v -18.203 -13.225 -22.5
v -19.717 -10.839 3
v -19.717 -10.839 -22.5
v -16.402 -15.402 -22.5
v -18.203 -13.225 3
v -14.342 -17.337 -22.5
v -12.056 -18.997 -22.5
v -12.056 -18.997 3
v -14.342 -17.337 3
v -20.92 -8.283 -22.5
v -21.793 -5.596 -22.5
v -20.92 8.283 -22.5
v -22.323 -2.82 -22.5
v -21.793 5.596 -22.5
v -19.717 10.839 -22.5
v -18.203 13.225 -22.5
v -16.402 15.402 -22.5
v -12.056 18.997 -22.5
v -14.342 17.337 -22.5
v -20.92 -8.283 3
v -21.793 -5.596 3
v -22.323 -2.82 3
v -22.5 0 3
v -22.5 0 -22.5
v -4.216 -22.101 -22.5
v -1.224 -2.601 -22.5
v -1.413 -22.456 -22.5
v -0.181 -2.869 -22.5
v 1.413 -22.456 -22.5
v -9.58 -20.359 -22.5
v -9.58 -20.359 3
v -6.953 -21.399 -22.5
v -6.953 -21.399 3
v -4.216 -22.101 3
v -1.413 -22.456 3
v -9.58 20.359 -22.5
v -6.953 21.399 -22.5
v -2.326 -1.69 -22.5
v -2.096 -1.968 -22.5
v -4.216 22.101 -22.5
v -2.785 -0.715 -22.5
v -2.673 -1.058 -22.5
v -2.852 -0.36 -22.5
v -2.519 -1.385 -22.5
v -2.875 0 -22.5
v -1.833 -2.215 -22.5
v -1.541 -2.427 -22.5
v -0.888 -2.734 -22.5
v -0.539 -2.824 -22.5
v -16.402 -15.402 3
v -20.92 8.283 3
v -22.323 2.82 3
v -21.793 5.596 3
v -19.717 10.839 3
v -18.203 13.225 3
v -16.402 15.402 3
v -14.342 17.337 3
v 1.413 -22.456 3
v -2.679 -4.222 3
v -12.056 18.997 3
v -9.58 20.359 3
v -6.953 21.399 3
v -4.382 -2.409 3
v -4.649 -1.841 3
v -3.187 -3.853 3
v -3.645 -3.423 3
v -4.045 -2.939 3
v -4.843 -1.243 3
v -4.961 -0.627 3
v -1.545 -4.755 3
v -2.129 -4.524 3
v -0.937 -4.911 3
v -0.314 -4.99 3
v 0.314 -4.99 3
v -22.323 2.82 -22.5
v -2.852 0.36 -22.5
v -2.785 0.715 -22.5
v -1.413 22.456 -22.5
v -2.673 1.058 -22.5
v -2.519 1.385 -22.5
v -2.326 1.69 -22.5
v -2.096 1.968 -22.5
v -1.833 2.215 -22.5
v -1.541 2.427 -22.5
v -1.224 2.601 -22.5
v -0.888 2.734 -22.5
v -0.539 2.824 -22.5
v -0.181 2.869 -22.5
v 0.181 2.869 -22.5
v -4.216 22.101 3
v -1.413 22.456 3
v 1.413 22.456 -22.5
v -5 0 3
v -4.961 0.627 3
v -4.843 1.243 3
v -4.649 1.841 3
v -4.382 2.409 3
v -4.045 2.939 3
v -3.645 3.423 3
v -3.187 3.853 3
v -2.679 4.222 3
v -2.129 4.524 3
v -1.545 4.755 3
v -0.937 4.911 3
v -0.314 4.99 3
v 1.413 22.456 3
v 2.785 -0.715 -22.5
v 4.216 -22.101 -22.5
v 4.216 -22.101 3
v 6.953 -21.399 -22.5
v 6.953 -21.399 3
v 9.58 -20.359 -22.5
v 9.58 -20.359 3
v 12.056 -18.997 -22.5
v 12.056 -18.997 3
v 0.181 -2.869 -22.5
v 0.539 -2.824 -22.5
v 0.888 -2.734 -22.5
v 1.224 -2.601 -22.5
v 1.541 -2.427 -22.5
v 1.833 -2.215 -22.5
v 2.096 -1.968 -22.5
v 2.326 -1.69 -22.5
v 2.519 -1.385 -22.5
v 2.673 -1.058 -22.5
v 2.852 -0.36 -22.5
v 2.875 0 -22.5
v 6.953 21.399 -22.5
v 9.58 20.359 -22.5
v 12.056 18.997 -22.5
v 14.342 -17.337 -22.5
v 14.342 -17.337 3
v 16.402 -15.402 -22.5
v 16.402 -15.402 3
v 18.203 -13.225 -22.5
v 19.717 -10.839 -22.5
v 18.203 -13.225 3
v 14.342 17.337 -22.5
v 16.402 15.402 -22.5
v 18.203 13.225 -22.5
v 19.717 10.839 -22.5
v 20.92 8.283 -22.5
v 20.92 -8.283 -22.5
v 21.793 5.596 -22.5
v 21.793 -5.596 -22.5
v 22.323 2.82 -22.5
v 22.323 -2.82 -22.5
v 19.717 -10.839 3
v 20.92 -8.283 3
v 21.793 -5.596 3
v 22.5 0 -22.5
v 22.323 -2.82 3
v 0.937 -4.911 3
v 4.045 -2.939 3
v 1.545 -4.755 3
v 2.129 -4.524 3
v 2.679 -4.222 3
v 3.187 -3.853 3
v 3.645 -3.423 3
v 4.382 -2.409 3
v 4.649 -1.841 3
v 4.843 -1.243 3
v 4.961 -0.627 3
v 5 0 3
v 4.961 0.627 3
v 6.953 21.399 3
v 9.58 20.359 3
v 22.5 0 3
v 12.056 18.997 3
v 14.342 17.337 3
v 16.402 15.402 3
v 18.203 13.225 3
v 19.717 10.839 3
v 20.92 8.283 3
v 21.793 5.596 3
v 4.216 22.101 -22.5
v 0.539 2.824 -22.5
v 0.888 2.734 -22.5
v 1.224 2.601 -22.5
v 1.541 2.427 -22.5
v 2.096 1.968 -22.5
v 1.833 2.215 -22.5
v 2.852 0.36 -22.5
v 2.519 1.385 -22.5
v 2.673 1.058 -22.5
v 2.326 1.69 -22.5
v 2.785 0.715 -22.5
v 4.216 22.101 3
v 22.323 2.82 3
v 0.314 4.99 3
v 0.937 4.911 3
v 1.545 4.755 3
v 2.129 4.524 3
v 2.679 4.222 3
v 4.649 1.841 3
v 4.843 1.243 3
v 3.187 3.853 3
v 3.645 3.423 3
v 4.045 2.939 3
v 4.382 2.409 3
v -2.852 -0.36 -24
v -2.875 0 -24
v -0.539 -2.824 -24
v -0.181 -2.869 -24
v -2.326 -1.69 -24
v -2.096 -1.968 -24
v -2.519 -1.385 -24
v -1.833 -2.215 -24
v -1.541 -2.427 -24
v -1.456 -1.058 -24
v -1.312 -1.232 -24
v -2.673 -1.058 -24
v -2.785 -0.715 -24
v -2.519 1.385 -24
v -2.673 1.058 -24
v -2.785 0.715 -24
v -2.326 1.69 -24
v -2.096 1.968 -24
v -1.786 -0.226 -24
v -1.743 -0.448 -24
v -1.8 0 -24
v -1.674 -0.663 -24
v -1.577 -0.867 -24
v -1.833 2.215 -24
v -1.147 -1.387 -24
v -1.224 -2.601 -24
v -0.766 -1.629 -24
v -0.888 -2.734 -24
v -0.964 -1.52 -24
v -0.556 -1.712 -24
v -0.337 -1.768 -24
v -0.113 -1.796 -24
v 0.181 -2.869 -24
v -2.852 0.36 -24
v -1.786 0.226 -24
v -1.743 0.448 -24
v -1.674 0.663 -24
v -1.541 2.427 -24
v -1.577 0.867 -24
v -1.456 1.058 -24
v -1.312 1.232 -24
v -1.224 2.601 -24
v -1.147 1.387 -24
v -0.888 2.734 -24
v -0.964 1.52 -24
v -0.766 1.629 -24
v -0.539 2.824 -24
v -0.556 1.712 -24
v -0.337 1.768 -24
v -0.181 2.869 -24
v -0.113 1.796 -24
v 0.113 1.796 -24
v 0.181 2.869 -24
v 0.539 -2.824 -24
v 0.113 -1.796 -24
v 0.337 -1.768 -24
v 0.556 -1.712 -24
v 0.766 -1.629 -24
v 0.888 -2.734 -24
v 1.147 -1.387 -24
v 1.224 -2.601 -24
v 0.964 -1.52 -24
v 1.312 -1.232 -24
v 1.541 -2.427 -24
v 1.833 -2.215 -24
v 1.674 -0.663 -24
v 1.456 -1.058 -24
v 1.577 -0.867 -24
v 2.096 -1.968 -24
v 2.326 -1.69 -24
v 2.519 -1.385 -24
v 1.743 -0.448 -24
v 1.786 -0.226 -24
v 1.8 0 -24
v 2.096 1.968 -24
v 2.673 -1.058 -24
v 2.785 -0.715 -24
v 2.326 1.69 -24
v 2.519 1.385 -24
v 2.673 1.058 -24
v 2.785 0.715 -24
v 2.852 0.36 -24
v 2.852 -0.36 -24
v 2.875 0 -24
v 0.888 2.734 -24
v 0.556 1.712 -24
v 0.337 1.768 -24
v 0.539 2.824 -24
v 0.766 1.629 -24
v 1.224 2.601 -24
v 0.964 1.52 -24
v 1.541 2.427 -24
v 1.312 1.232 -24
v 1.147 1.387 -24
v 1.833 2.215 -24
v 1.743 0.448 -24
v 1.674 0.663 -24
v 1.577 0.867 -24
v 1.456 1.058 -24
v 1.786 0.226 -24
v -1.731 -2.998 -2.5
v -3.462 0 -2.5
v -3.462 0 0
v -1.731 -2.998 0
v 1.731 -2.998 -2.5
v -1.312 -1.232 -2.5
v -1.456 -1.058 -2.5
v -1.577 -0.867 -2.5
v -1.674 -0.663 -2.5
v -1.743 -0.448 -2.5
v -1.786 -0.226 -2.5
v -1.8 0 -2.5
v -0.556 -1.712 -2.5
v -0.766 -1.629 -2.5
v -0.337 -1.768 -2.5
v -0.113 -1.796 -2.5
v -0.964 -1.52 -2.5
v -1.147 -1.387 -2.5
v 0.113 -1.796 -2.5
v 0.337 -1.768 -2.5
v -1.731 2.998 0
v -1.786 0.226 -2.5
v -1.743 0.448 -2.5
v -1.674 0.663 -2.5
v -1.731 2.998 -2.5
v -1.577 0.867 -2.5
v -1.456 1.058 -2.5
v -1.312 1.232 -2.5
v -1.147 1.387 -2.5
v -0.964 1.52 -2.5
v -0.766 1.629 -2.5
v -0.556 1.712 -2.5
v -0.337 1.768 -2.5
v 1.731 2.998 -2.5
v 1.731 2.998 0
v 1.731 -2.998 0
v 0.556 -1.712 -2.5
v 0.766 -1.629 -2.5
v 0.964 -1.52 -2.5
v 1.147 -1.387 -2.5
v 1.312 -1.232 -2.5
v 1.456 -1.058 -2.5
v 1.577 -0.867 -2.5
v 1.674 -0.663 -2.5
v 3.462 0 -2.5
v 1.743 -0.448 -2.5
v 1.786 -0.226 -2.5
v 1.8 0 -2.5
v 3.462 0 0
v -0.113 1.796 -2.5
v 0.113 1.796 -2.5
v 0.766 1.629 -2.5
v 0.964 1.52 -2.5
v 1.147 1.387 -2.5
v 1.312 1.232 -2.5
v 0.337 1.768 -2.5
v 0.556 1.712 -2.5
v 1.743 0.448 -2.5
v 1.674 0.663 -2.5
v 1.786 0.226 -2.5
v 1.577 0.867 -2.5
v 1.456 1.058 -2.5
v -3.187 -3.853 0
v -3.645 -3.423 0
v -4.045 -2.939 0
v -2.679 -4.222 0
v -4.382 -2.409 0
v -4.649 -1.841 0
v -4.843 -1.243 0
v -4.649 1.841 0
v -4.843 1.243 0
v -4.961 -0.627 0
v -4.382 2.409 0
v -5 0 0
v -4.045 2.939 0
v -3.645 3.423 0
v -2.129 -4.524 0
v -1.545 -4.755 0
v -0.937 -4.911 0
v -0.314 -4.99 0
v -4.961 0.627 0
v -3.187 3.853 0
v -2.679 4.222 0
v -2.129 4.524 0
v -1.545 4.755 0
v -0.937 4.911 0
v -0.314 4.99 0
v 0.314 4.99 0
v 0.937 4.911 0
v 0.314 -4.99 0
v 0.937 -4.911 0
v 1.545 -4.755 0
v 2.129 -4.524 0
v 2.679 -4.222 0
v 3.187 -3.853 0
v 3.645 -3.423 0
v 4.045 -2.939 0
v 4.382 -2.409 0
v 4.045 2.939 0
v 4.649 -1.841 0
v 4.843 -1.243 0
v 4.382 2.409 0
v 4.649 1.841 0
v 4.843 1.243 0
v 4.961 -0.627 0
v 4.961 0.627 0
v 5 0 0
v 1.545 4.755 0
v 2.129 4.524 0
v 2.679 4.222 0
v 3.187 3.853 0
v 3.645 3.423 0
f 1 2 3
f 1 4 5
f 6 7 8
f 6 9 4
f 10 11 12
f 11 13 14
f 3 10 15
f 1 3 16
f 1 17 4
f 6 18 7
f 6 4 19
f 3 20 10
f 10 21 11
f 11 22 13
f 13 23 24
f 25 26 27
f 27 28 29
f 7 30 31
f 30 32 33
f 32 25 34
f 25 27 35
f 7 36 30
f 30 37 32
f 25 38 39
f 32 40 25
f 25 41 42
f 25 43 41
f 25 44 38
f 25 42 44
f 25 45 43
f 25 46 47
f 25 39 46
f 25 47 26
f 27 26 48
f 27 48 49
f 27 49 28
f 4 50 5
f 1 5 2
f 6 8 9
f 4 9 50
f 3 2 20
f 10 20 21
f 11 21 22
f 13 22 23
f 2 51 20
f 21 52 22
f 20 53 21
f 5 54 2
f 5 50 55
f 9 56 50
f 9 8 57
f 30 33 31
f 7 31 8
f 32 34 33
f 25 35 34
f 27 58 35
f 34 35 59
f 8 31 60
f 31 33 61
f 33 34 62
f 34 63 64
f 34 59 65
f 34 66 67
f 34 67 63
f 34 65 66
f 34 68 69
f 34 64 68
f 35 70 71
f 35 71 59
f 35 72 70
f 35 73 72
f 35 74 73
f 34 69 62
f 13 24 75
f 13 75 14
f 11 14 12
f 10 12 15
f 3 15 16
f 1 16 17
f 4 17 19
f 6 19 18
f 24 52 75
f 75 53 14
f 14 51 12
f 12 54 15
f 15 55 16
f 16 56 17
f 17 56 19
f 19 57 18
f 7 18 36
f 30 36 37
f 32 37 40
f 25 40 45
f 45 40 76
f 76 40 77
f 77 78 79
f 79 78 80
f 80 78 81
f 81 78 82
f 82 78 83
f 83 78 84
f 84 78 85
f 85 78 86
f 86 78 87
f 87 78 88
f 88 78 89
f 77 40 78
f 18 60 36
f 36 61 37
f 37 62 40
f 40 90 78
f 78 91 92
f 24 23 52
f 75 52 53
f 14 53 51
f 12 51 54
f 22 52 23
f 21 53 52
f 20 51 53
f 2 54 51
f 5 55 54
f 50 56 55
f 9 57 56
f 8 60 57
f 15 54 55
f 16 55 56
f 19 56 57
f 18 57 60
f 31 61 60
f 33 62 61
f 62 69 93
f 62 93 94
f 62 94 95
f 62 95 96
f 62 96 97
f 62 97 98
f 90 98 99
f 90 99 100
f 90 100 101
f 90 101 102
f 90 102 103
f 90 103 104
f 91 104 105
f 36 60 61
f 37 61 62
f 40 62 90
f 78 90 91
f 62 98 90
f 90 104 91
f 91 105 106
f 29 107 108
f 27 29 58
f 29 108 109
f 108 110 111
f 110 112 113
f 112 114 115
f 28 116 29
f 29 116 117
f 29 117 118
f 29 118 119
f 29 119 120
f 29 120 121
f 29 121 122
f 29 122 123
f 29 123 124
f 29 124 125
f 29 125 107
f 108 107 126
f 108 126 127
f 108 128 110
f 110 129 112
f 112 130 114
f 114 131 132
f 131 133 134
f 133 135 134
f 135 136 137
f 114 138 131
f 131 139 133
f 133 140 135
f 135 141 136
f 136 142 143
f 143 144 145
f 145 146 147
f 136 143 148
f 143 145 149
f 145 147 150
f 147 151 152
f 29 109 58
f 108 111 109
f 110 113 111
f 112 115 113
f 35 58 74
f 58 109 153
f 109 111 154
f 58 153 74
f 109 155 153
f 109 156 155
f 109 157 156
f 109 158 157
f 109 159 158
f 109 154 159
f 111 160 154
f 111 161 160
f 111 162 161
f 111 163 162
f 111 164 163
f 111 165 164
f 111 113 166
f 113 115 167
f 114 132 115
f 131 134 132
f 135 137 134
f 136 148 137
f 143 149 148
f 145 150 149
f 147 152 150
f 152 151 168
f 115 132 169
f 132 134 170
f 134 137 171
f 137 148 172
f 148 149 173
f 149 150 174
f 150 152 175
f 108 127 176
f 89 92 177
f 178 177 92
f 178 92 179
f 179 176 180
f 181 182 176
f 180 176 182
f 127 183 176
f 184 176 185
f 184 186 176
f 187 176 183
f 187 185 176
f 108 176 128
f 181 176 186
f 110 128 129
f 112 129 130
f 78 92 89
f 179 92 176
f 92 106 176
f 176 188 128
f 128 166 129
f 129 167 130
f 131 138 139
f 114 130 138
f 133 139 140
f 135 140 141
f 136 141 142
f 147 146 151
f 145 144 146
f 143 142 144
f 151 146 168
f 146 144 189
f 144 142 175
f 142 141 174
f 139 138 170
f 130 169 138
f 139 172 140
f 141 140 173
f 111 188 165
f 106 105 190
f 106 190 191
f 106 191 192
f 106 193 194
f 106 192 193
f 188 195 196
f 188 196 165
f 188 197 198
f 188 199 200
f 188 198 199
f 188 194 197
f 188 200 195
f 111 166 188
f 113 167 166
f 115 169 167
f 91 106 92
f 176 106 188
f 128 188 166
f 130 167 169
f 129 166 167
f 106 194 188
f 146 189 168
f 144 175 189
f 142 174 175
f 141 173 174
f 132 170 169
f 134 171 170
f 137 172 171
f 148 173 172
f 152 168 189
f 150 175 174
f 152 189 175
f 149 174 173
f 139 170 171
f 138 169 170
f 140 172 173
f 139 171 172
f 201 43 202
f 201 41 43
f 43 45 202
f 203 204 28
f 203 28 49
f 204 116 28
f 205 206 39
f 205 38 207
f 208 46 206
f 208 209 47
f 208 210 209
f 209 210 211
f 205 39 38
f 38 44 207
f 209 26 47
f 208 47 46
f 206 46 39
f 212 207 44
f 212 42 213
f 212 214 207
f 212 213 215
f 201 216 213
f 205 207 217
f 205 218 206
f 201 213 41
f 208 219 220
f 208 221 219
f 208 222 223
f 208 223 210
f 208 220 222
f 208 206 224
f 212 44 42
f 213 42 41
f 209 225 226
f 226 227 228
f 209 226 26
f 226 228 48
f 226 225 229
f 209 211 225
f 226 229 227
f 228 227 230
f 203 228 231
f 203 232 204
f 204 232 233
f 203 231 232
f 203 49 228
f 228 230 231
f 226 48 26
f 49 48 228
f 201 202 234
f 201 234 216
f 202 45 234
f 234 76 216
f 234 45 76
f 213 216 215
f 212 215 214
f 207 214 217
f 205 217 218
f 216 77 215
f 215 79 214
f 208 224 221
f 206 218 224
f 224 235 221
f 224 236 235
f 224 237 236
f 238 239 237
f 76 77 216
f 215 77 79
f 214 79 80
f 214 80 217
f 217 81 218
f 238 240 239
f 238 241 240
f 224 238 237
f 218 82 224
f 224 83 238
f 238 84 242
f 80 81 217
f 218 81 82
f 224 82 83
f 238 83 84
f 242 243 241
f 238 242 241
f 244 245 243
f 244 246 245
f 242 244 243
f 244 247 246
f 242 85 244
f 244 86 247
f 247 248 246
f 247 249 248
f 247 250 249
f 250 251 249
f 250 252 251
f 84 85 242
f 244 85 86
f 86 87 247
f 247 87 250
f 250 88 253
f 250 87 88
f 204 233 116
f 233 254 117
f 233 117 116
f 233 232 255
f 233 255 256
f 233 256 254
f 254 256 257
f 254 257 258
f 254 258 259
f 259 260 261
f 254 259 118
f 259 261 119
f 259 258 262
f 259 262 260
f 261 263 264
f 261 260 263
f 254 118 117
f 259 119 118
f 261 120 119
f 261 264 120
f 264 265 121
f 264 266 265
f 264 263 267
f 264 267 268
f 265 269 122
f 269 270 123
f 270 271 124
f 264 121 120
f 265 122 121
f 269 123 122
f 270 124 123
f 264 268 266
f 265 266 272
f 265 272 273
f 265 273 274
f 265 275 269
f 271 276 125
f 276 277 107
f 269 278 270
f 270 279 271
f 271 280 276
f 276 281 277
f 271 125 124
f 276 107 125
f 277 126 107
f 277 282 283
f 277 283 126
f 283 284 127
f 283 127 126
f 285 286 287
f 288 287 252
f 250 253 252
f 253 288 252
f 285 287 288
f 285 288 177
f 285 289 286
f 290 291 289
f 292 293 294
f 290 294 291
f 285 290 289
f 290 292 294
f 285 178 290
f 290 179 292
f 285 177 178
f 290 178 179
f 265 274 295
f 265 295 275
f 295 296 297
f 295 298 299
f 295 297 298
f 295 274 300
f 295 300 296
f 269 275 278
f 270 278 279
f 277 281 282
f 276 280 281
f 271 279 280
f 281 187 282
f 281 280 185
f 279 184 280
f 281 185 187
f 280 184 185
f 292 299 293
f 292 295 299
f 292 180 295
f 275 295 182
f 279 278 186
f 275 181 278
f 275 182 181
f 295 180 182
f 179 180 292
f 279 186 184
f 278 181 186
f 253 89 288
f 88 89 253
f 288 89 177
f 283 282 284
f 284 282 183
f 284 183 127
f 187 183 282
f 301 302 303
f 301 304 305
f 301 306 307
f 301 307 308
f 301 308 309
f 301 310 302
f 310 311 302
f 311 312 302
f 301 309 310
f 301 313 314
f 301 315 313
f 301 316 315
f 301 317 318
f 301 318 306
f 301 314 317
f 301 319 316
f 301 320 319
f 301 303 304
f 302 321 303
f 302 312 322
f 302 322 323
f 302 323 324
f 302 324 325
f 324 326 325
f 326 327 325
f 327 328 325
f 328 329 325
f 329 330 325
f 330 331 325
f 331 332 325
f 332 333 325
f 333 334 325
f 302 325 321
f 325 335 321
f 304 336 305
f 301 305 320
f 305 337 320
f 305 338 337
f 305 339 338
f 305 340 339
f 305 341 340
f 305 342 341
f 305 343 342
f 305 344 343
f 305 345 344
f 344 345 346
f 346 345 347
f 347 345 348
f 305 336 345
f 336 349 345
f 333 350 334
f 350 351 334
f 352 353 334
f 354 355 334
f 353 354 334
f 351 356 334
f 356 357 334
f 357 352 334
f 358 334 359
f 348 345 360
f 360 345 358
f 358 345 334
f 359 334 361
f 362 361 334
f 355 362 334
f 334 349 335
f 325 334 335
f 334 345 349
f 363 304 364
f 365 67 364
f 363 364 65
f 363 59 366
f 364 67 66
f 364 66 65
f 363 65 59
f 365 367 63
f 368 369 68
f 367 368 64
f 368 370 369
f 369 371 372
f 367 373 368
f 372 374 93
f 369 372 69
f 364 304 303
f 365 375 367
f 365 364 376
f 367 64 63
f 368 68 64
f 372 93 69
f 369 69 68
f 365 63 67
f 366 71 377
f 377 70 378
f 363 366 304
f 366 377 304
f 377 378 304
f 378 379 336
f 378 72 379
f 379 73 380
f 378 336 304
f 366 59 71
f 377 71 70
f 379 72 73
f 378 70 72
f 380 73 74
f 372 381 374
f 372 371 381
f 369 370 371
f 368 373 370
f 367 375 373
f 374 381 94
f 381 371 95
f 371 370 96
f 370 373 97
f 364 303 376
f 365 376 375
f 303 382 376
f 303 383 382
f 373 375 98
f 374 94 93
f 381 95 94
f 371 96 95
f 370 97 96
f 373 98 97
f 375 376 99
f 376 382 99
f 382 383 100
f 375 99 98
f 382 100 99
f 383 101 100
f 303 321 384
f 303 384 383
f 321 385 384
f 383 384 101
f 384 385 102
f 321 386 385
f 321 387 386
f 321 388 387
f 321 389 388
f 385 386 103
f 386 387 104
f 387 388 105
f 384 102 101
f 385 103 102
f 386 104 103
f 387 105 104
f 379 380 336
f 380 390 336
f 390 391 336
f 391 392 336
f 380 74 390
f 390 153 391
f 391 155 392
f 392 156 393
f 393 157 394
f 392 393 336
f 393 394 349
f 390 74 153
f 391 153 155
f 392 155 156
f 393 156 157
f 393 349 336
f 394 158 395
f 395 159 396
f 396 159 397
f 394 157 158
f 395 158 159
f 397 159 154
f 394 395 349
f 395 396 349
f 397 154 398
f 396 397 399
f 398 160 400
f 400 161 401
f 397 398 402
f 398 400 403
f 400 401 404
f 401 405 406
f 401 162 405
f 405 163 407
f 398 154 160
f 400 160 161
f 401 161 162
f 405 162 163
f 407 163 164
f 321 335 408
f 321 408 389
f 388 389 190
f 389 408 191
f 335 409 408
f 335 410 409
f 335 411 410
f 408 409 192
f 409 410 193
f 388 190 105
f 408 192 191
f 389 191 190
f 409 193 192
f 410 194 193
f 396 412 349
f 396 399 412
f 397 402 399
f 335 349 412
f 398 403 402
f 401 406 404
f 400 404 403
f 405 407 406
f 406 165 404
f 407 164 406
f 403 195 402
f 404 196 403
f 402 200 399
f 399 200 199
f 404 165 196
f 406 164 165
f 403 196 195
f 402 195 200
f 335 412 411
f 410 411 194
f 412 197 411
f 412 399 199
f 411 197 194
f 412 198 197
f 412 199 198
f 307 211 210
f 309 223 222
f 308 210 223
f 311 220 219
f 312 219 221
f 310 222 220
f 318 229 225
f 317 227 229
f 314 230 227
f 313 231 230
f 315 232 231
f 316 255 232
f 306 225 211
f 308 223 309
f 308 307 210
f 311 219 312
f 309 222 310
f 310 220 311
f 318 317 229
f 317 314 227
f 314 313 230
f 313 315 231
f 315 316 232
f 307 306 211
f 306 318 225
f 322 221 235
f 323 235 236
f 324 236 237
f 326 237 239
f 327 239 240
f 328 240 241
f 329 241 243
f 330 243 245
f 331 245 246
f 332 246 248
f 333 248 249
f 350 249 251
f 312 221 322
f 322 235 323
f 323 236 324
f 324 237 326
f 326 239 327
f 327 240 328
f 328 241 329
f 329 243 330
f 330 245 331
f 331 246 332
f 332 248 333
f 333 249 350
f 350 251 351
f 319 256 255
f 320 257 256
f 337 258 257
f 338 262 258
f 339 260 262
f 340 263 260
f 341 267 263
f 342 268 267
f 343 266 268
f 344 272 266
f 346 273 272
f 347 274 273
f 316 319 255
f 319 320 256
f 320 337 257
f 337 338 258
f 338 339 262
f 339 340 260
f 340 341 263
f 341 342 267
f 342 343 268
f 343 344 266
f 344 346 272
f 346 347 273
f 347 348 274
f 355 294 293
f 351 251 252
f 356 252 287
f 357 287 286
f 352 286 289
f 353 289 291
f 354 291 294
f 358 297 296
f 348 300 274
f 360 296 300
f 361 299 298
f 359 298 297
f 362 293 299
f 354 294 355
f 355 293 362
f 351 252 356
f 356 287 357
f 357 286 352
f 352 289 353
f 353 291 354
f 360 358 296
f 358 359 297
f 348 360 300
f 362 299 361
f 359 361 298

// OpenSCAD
$fn = 50;

difference() {
	union() {
		translate(v = [0, 0, -22.5]) {
			cylinder(h = 25.5, r = 22.5);
		}
		#translate(v = [0, 0, -24.0]) {
			cylinder(h = 24, r = 2.875);
		}
	}
	union() {
		translate(v = [0, 0, 0]) {
			rotate(a = [0, 0, 0]) {
				difference() {
					union() {
						translate(v = [0, 0, -2.5]) {
							linear_extrude(height = 2.5) {
								polygon(points = [[3.4619999999999997, 0.0], [1.7310000000000003, 2.9981799479017264], [-1.7309999999999992, 2.9981799479017264], [-3.4619999999999997, 4.2397272186481365e-16], [-1.7310000000000014, -2.998179947901726], [1.7309999999999977, -2.9981799479017277]]);
							}
						}
					}
					union();
				}
			}
		}
		#cylinder(h = 3, r = 5.0);
		#translate(v = [0, 0, -100.0]) {
			cylinder(h = 200, r = 1.8);
		}
	}
}
